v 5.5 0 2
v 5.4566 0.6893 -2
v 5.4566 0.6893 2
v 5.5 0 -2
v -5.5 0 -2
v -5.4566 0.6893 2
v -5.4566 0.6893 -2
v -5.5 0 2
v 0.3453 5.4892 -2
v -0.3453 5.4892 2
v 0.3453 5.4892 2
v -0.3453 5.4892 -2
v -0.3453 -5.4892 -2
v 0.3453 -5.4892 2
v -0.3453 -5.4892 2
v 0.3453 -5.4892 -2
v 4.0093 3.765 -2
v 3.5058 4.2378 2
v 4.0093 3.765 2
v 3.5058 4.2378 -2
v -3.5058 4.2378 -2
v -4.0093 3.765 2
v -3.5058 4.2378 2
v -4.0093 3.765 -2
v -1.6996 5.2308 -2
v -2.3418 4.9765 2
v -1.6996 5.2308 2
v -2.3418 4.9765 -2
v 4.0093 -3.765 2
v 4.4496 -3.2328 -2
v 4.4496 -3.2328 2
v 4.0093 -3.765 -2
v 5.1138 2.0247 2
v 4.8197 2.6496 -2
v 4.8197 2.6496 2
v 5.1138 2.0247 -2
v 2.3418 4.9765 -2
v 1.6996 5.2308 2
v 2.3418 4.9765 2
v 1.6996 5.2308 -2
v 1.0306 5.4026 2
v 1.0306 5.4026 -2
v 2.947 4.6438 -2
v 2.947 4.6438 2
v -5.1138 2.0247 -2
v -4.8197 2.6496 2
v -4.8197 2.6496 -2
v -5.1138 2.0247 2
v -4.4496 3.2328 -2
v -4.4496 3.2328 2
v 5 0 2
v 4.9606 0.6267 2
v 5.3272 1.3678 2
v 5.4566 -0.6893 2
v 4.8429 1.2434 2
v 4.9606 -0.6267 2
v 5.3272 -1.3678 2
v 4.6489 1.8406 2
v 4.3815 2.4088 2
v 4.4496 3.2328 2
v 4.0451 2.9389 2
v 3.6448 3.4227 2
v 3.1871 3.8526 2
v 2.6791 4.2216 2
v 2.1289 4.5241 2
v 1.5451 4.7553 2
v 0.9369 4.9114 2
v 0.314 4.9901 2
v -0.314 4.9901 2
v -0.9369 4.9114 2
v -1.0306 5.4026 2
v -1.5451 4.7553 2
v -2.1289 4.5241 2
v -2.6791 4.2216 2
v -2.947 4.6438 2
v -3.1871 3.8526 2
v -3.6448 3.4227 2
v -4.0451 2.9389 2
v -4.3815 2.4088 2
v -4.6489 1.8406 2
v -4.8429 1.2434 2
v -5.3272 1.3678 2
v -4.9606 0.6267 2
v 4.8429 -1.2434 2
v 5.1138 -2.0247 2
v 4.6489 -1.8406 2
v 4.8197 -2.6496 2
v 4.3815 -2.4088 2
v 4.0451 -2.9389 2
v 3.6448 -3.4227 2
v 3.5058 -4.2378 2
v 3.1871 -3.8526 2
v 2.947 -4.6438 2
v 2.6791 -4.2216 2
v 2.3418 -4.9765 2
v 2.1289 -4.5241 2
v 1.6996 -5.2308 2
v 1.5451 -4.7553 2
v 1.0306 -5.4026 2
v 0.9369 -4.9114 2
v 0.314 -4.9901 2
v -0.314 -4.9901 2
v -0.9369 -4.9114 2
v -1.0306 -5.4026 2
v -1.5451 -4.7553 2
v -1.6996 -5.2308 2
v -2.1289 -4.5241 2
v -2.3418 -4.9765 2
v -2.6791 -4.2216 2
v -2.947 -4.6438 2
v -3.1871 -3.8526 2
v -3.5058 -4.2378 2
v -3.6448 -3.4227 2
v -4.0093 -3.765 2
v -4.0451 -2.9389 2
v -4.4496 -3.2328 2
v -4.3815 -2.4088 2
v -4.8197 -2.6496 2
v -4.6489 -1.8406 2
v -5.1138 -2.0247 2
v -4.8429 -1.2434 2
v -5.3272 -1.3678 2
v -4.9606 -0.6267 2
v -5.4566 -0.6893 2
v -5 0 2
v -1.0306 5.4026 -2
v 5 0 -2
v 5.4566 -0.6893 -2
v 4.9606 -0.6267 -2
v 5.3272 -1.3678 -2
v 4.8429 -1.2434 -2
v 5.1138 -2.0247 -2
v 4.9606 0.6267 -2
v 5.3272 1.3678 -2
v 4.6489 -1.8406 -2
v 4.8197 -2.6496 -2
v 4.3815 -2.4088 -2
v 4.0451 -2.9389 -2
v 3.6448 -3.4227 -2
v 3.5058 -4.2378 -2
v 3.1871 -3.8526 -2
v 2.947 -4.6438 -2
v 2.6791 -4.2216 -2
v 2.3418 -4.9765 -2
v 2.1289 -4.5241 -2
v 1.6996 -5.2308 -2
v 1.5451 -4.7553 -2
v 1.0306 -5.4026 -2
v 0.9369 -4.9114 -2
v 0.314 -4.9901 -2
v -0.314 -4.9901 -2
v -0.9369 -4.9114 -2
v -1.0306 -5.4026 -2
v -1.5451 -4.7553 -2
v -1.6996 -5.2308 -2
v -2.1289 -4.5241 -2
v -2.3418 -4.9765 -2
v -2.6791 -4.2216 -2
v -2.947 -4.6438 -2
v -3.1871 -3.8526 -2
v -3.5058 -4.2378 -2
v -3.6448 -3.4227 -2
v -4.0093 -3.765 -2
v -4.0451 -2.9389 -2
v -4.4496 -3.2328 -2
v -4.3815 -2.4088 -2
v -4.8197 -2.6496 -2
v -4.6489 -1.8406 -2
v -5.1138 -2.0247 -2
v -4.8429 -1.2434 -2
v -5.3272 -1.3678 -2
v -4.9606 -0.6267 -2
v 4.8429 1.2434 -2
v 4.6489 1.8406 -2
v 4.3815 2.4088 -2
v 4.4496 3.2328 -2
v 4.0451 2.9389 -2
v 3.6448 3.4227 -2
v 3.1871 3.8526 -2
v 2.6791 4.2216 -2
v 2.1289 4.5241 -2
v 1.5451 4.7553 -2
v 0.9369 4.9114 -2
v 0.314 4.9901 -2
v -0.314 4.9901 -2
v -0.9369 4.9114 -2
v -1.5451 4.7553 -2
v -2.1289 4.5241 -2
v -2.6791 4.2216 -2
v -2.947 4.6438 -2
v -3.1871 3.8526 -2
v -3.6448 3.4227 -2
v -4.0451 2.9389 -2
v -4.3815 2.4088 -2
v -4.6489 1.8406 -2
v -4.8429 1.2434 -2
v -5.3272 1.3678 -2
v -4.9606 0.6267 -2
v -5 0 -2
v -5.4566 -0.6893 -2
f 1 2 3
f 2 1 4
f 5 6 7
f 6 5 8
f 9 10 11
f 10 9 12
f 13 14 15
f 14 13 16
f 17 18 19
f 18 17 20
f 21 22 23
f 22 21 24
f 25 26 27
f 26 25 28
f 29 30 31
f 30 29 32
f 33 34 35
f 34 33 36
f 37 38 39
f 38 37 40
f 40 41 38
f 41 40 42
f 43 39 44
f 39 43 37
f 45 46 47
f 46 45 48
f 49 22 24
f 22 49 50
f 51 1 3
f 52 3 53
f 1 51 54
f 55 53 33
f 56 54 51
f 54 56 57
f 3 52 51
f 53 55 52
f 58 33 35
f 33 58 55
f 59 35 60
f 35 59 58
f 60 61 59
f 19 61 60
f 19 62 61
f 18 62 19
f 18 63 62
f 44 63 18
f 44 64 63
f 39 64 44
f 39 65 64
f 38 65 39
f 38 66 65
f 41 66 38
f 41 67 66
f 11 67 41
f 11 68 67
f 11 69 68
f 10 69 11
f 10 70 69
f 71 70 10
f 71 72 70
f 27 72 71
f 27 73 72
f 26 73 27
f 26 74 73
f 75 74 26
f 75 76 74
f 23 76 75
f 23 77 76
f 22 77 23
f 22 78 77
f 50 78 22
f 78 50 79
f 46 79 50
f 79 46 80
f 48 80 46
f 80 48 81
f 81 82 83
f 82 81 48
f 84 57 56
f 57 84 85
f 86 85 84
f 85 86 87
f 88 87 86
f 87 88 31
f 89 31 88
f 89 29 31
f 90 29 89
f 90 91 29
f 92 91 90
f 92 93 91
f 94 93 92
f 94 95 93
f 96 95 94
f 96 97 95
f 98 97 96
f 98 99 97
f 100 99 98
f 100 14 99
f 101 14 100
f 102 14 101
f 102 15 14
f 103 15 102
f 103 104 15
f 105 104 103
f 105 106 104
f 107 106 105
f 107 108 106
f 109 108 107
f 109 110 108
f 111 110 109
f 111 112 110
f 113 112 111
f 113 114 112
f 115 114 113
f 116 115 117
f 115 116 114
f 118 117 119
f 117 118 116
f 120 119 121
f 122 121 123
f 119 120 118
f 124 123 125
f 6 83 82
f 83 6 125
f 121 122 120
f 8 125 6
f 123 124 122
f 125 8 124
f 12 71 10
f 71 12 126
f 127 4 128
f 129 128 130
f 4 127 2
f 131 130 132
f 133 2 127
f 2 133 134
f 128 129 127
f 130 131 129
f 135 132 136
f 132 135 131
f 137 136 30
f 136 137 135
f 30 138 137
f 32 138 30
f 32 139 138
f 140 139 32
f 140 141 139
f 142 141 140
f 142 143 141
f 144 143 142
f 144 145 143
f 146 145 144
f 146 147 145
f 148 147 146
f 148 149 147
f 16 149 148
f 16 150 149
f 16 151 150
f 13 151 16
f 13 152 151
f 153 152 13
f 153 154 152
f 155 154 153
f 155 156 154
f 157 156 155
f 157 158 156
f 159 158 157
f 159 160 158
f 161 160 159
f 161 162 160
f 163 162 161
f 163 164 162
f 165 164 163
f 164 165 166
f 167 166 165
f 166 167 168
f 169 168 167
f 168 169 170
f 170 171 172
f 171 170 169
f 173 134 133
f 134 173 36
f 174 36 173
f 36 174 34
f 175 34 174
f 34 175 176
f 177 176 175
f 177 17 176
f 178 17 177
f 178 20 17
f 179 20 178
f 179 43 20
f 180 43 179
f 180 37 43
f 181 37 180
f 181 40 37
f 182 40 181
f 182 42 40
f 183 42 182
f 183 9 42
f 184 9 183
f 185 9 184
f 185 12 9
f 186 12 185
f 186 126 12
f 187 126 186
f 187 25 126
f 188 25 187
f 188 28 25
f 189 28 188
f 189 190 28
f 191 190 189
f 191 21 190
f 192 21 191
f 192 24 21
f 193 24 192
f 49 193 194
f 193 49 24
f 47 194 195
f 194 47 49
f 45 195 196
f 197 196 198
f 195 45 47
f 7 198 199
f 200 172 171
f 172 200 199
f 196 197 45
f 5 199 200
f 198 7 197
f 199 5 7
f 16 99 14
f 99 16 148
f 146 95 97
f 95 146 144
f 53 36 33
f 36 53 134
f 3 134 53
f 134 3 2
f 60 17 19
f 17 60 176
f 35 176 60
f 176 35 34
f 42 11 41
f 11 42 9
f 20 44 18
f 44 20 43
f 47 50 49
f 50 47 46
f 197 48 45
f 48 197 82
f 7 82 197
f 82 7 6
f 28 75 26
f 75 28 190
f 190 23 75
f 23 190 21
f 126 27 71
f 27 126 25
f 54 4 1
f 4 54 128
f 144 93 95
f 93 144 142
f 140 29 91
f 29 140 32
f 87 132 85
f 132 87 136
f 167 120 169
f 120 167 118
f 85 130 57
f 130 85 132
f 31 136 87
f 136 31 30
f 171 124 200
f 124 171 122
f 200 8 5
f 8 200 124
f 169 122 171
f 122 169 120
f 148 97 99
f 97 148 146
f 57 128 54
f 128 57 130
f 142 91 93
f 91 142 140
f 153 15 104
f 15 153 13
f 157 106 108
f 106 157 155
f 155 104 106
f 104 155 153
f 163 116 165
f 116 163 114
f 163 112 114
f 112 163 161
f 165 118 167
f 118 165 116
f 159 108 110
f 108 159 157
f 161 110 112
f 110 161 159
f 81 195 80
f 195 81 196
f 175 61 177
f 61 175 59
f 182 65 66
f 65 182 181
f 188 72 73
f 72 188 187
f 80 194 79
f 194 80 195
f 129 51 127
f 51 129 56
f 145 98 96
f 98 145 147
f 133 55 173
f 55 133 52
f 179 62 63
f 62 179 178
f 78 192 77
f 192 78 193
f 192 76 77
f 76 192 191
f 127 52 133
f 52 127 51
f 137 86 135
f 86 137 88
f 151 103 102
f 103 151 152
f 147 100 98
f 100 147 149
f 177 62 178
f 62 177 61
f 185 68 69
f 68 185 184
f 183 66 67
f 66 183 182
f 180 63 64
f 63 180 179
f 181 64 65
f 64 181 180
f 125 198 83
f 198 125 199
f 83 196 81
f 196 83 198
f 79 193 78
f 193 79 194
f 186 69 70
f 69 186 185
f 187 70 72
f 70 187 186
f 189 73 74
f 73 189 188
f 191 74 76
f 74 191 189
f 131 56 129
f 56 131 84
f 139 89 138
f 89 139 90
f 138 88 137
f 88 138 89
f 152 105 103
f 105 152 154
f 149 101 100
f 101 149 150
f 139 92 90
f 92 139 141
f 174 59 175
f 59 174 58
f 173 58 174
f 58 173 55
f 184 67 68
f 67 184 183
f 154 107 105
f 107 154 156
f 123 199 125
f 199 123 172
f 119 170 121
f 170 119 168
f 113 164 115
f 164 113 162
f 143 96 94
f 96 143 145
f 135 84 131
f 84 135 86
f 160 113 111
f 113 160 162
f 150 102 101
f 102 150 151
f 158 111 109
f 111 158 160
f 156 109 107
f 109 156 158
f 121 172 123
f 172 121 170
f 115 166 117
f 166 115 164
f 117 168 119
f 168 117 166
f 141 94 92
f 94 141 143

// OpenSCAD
$fn = 50;


difference() {
	union() {
		translate(v = [0, 0, -2.0000000000]) {
			cylinder(h = 4, r = 5.5000000000);
		}
	}
	union() {
		translate(v = [0, 0, -100.0000000000]) {
			cylinder(h = 200, r = 5);
		}
	}
}
